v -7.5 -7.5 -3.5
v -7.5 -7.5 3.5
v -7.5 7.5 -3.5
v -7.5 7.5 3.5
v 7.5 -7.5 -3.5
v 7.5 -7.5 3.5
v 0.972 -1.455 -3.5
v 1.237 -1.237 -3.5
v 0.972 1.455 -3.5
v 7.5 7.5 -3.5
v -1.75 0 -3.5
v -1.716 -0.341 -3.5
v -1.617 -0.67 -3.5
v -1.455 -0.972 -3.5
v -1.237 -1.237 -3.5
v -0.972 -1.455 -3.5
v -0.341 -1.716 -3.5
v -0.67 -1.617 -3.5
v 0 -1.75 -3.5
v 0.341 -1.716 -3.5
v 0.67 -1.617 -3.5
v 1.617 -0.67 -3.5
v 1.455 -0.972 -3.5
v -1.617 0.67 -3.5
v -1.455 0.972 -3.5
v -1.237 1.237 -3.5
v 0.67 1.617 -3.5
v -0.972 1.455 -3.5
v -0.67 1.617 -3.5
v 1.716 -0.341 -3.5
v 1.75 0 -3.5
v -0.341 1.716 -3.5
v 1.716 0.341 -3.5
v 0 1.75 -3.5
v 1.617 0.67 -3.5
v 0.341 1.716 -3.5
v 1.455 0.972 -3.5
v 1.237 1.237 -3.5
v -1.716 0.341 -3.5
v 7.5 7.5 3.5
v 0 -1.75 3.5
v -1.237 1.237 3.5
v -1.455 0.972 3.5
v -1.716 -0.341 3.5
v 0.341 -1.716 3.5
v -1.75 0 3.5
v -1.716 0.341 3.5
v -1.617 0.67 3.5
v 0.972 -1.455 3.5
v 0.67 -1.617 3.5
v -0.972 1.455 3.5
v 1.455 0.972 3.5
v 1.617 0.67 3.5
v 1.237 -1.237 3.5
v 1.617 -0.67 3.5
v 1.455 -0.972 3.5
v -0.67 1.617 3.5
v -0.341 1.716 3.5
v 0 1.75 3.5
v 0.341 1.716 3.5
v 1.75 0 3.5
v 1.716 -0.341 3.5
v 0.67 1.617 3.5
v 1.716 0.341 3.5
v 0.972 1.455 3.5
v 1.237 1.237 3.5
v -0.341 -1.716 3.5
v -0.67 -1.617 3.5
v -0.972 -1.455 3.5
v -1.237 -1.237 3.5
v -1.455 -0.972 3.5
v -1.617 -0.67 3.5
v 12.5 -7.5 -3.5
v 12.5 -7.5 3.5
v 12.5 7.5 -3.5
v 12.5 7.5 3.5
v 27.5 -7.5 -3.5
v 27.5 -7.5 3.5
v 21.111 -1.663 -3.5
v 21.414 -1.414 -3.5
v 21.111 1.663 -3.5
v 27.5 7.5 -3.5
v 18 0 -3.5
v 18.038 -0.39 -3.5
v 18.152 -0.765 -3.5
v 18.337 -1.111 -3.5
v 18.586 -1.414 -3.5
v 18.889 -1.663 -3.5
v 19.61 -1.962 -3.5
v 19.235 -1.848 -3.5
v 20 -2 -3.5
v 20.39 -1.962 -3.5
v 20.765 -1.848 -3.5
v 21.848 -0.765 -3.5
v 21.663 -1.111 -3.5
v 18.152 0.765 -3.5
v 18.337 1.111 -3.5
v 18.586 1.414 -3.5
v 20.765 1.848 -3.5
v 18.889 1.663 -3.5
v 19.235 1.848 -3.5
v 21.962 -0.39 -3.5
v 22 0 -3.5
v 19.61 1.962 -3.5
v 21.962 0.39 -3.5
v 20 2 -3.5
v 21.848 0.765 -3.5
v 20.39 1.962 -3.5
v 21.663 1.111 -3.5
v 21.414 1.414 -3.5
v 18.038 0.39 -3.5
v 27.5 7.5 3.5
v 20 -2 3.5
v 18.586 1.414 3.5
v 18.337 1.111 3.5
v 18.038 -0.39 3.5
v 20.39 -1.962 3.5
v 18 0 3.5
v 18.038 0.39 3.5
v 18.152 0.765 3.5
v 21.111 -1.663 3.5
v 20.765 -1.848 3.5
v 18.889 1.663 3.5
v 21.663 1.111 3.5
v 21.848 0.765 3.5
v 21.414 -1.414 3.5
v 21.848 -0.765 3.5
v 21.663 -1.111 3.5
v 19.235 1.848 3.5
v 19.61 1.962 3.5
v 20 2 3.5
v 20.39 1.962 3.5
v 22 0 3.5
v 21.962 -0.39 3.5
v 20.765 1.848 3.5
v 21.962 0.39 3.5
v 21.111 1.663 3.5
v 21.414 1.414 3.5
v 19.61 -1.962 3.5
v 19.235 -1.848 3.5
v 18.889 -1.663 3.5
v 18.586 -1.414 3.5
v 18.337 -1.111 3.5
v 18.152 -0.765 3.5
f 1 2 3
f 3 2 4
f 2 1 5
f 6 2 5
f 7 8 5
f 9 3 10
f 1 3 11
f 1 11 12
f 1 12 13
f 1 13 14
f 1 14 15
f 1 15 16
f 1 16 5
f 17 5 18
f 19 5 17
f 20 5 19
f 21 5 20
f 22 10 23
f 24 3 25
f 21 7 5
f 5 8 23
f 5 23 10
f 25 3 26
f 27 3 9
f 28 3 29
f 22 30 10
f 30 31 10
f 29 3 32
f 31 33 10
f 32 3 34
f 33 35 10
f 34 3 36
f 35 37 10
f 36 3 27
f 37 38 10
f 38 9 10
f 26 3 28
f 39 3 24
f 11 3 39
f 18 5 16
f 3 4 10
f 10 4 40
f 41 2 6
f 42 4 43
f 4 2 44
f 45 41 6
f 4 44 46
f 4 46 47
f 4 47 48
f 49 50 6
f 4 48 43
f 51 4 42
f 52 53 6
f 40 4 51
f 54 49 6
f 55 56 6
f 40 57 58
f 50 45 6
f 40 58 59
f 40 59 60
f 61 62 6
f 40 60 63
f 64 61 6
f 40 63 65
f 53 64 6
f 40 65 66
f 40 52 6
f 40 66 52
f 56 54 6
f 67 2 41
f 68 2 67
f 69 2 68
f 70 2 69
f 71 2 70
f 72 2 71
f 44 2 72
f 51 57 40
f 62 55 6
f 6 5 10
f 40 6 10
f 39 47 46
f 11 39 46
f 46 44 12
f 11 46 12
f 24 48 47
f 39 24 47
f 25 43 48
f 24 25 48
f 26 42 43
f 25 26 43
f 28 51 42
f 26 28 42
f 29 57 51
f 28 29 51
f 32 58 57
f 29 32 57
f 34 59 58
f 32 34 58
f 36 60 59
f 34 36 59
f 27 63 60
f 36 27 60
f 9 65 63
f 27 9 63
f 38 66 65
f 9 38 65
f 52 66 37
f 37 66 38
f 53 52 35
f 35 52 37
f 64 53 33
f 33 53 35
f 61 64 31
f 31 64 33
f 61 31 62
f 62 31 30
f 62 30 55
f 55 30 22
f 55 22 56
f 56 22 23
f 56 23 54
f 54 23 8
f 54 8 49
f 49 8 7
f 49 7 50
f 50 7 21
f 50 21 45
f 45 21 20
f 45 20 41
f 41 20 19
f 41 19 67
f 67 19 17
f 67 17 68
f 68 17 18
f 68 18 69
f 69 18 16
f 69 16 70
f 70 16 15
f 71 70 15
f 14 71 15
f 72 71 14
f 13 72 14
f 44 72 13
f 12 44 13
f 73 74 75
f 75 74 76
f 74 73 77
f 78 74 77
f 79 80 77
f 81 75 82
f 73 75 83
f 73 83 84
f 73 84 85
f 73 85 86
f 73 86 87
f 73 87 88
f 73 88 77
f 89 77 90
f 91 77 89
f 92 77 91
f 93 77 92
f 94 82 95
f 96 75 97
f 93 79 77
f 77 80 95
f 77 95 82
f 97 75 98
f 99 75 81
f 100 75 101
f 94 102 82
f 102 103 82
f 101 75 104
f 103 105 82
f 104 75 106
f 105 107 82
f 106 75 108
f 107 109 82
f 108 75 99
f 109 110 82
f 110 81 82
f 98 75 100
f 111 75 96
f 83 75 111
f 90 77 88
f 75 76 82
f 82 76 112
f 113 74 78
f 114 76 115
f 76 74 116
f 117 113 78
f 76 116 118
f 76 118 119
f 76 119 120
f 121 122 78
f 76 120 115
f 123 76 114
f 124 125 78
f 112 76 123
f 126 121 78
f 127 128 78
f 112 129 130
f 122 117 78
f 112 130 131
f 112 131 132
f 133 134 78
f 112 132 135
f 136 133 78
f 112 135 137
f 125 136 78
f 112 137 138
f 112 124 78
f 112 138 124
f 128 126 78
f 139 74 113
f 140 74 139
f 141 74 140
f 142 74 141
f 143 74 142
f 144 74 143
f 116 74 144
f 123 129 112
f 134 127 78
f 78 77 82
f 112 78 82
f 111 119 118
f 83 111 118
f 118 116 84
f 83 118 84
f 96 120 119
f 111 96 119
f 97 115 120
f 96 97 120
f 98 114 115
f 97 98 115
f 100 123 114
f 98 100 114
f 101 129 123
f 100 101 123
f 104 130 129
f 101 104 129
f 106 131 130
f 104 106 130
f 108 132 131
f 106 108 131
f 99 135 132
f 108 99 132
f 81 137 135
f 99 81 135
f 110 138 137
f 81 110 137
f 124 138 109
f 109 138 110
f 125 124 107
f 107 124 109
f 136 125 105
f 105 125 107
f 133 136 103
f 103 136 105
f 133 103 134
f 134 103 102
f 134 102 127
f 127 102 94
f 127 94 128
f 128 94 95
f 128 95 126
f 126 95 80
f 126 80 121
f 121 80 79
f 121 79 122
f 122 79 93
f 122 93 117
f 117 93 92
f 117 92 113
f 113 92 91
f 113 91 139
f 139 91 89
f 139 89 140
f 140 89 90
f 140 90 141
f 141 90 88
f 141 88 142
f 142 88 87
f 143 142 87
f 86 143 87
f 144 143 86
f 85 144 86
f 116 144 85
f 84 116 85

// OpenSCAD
$fn=32;

difference() {
  cube([15, 15, 7], center=true);
  cylinder(r=3.5/2, h=8, center=true);
}

translate([20, 0, 0]) difference() {
  cube([15, 15, 7], center=true);
  cylinder(r=4/2, h=8, center=true);
}
